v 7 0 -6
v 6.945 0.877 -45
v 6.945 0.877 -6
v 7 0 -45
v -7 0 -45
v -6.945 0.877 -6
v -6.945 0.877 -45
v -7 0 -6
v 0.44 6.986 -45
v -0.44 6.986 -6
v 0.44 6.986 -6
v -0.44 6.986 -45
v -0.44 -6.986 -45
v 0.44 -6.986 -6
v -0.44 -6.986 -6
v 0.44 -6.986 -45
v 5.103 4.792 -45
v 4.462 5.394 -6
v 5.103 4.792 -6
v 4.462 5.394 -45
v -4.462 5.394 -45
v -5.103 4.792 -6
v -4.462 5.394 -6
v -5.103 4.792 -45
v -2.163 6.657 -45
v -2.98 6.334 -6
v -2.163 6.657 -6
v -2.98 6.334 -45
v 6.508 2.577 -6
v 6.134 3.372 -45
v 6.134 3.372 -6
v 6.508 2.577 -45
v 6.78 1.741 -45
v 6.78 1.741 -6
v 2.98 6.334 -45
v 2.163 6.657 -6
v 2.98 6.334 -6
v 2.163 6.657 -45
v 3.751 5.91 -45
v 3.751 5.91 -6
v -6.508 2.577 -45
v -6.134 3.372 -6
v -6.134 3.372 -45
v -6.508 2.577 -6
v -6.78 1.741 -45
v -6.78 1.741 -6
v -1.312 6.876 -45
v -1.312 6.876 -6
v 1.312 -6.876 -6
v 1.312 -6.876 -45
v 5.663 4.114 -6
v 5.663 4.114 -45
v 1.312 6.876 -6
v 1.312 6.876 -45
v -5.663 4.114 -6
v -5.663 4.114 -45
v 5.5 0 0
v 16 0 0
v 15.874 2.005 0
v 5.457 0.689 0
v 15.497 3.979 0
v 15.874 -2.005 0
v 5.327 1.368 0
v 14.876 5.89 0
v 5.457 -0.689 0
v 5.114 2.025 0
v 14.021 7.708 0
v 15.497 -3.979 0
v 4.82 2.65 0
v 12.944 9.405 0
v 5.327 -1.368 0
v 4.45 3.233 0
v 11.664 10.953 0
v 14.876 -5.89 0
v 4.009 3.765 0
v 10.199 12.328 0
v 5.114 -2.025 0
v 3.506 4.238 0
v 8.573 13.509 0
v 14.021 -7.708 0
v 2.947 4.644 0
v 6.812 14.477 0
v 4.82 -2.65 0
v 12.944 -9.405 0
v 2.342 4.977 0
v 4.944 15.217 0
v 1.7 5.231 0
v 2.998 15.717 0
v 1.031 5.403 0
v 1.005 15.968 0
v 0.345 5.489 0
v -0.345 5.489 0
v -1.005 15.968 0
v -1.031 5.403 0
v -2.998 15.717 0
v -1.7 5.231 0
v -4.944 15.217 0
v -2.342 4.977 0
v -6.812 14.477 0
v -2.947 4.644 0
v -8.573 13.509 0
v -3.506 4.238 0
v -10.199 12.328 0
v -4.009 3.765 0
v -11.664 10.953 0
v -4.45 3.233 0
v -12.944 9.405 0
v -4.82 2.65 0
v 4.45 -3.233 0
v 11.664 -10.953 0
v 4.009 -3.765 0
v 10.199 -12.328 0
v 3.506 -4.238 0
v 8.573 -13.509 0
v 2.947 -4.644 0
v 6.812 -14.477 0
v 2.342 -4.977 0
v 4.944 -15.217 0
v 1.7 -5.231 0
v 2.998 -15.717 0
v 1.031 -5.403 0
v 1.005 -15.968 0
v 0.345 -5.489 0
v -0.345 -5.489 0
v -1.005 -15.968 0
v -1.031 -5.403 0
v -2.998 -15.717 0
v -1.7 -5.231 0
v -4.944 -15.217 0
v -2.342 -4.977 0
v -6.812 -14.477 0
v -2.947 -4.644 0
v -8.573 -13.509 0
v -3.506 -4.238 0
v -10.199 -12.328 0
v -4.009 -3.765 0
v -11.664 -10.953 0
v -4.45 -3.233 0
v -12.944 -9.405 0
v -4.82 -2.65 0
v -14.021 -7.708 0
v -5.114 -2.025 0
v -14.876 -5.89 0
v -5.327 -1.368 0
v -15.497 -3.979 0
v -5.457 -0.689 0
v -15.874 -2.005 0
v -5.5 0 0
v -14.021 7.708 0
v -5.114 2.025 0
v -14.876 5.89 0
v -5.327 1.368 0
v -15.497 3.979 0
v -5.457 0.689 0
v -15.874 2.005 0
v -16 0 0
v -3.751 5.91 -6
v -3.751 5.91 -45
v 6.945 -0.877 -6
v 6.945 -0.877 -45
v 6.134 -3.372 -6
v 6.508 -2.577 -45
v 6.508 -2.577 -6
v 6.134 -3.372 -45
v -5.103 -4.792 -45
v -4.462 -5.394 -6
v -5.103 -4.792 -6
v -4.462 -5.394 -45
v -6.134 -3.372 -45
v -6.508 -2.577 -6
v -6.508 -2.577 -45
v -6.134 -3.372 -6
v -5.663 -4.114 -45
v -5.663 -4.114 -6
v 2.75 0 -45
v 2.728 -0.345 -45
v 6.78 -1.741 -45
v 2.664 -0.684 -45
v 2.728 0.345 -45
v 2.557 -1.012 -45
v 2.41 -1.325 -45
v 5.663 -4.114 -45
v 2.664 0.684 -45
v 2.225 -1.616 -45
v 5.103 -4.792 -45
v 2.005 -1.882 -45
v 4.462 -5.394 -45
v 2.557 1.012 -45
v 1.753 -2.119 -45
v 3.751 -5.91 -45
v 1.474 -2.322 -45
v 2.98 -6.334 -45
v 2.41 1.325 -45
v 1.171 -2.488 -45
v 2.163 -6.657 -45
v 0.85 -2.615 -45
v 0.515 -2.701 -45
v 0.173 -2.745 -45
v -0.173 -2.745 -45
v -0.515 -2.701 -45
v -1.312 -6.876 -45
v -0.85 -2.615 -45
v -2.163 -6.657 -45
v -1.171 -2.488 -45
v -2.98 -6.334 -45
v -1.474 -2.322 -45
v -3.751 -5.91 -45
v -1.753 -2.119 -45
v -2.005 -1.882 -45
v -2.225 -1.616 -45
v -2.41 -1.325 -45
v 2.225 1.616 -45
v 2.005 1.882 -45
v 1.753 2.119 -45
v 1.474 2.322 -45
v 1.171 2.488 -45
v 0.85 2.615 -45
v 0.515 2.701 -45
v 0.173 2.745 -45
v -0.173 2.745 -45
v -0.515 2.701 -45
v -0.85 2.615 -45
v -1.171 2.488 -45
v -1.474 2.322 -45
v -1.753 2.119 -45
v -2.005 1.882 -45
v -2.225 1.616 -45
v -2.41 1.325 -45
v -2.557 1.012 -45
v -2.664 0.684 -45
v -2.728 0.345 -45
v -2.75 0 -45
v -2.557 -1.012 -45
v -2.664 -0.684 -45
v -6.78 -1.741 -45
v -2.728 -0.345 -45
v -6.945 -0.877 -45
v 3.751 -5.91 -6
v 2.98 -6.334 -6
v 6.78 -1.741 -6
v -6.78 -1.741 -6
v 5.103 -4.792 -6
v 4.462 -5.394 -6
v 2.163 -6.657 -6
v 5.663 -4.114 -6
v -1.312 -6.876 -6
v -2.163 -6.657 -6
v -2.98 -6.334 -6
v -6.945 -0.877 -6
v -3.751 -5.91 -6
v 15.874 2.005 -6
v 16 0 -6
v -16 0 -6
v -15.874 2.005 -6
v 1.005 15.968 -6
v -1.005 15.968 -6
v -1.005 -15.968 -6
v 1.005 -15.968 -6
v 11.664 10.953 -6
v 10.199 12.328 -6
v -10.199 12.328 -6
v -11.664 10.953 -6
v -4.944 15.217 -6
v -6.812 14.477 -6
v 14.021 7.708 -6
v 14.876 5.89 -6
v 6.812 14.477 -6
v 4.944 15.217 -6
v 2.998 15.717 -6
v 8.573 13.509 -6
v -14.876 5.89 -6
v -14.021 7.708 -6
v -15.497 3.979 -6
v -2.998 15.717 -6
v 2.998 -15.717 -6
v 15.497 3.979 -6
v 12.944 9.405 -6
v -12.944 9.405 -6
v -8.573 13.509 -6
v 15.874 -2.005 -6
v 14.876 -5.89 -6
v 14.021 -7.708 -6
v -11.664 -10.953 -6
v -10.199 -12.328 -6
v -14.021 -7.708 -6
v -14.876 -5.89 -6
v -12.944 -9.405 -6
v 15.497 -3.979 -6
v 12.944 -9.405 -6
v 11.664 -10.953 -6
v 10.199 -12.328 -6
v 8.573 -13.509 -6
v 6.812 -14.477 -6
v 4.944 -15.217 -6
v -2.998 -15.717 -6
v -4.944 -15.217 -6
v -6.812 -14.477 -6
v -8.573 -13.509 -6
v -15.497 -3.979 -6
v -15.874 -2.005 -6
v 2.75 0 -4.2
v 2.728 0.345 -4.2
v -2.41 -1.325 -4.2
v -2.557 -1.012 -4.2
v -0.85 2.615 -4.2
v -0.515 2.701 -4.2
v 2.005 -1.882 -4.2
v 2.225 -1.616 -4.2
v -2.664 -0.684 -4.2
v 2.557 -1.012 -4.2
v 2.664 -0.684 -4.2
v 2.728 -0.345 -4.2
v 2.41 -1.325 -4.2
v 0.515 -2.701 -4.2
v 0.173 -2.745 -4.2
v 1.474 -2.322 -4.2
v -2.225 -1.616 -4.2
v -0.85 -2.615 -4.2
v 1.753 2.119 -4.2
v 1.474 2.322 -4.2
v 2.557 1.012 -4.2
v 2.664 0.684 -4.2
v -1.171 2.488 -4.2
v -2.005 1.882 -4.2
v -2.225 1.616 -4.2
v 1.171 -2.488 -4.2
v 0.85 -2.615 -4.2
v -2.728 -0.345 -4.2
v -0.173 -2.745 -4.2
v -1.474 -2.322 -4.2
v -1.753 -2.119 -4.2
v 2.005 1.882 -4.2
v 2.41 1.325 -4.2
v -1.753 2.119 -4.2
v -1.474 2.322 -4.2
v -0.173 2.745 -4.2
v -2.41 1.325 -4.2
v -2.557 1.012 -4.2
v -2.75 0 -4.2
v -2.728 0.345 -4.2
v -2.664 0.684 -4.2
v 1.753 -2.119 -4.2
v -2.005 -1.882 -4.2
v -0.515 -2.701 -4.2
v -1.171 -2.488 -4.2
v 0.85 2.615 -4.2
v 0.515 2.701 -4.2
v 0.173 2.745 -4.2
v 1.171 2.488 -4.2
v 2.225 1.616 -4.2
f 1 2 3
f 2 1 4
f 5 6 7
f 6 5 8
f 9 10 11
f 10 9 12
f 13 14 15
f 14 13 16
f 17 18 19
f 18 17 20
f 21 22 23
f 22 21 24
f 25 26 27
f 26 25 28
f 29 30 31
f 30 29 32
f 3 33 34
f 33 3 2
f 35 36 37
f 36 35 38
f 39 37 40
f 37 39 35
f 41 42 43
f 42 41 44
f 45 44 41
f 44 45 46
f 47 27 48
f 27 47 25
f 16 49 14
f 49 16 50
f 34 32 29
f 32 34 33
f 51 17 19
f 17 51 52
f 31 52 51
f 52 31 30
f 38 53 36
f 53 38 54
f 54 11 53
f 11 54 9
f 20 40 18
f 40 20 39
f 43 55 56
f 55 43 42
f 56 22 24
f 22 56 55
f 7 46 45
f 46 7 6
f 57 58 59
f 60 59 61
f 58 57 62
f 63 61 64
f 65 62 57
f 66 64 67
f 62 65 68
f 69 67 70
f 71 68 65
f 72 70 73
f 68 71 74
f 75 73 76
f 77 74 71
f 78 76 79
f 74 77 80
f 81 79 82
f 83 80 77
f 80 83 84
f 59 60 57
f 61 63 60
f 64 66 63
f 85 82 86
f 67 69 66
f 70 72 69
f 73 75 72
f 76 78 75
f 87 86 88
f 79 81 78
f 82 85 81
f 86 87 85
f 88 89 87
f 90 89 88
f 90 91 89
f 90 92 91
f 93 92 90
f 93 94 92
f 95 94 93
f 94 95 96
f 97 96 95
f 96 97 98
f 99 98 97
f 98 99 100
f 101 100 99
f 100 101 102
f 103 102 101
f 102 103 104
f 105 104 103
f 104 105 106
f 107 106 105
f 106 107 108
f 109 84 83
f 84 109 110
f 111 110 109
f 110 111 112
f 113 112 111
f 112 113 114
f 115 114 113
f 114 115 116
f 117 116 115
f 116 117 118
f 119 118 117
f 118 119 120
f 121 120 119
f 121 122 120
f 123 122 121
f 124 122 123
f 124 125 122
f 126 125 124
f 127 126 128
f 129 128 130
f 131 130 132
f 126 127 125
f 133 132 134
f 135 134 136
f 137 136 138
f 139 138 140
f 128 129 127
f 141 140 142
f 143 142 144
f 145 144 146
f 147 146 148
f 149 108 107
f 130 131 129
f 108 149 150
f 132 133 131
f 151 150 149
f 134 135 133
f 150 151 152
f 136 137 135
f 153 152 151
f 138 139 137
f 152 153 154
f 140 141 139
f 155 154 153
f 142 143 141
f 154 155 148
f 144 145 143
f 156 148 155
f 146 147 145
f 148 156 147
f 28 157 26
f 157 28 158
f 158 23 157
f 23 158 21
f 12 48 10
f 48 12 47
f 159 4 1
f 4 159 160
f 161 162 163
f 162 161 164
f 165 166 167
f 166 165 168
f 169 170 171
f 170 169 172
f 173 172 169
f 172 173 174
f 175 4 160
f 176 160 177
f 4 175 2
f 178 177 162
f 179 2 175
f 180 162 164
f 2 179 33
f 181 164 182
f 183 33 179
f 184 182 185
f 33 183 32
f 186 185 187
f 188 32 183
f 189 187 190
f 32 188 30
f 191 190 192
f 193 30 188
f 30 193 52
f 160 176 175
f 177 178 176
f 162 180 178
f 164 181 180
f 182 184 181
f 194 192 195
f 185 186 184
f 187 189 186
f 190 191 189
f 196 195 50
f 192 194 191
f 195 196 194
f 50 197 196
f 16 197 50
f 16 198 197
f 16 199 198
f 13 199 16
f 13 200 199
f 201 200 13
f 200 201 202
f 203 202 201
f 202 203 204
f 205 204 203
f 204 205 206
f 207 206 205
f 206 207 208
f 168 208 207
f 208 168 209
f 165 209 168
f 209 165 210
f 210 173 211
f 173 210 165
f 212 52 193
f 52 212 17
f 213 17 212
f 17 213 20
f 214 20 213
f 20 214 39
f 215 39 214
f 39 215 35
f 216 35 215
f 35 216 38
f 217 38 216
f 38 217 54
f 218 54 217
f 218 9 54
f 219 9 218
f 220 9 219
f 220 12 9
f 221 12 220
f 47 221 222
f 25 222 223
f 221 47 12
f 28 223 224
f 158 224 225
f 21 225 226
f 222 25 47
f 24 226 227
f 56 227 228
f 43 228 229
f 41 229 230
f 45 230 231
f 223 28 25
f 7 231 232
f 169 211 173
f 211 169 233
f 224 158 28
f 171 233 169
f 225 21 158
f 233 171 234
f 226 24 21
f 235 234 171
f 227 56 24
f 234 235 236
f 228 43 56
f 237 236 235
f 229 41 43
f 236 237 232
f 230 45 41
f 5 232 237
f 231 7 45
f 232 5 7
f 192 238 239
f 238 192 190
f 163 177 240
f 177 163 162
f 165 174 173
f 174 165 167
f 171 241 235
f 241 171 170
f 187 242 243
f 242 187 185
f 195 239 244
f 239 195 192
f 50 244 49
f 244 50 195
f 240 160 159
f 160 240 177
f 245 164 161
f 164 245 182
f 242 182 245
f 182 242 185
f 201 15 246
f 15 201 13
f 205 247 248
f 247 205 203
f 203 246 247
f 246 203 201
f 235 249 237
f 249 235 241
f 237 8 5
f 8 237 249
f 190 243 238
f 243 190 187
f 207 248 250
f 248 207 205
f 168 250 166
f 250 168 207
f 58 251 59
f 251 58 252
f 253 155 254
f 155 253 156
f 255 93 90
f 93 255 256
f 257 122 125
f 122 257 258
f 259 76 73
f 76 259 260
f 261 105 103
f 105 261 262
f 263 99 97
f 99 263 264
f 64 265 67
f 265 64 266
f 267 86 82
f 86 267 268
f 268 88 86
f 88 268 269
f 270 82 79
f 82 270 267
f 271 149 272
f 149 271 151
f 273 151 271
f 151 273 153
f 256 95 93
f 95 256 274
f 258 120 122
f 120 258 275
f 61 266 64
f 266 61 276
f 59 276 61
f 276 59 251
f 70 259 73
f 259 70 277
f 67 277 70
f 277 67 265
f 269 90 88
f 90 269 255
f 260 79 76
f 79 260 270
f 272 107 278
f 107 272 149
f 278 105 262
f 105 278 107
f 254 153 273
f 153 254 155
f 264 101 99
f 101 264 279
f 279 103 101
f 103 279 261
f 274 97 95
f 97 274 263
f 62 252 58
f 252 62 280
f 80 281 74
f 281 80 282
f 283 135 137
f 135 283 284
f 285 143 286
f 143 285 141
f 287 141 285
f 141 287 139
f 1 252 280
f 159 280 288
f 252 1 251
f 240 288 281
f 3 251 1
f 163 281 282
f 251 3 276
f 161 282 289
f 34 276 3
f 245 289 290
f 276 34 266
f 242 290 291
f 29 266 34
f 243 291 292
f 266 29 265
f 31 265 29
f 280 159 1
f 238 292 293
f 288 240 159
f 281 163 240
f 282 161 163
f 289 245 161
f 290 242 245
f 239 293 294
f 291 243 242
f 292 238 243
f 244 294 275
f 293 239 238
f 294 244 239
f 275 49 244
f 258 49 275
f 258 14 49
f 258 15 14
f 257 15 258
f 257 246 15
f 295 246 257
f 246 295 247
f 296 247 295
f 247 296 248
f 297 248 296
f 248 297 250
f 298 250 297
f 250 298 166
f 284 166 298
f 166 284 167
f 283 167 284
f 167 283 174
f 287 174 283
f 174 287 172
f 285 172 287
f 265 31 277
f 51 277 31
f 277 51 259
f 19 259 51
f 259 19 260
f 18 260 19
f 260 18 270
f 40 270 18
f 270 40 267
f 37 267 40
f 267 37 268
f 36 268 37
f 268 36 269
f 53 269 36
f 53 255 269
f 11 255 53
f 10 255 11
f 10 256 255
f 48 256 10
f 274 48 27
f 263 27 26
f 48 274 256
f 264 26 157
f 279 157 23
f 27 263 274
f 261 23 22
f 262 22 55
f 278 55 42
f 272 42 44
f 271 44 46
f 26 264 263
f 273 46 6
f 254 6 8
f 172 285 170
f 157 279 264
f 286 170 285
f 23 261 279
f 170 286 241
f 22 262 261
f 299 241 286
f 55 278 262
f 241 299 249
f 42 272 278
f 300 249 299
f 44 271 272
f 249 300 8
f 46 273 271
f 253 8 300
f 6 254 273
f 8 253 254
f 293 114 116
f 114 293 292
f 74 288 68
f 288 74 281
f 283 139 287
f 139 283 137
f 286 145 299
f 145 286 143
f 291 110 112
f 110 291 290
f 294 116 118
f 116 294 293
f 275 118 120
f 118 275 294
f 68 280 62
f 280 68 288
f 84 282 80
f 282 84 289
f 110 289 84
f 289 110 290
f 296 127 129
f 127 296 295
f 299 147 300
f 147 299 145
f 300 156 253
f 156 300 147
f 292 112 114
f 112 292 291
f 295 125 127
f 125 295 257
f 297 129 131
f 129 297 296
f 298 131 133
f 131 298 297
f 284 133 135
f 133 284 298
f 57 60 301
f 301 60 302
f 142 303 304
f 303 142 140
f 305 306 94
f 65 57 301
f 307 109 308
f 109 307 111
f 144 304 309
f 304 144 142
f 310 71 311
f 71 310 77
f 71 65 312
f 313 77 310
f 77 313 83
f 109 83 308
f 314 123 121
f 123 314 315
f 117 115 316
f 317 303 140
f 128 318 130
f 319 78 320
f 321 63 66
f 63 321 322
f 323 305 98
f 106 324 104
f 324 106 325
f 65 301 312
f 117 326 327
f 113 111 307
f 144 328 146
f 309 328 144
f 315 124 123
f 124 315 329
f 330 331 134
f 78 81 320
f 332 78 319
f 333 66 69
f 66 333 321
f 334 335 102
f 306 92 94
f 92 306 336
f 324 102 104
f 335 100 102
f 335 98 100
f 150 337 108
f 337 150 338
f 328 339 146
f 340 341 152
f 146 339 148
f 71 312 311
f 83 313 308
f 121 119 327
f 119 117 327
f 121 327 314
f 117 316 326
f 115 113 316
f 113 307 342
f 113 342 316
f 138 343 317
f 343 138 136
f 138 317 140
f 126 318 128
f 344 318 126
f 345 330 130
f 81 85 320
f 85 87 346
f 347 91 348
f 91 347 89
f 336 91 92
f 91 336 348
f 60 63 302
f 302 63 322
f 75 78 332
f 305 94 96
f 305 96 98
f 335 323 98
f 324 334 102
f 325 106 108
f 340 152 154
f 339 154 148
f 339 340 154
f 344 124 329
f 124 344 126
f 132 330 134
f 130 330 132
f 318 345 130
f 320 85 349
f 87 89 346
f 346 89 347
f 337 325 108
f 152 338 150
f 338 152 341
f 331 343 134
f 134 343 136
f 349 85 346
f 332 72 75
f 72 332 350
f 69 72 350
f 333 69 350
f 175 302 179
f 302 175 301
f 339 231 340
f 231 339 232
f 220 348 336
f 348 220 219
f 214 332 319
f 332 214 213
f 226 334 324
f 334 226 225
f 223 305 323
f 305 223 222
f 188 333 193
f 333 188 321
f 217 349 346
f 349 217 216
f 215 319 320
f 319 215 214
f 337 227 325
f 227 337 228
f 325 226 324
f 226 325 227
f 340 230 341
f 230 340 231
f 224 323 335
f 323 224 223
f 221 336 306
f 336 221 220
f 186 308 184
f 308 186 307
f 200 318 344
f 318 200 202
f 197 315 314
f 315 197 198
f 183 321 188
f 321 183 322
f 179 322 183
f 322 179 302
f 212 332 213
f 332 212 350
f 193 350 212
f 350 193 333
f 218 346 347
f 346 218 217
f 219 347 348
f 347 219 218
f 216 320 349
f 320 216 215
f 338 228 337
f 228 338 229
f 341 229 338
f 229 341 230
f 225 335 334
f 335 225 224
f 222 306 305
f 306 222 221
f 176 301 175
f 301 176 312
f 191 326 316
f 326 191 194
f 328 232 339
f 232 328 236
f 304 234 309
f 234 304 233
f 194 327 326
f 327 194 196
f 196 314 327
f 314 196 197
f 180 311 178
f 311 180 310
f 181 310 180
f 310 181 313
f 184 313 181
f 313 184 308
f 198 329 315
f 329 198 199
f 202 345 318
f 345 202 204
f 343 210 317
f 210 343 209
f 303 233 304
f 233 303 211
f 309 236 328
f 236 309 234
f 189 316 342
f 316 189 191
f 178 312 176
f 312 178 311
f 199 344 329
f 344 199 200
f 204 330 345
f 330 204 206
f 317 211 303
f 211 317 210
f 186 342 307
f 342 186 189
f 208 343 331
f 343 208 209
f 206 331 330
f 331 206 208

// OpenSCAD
$fn = 50;


difference() {
	union() {
		translate(v = [0, 0, -45.0000000000]) {
			cylinder(h = 45, r = 7.0000000000);
		}
		translate(v = [0, 0, -6.0000000000]) {
			cylinder(h = 6, r = 16.0000000000);
		}
	}
	union() {
		translate(v = [0, 0, 0]) {
			rotate(a = [0, 0, 0]) {
				difference() {
					union() {
						#translate(v = [0, 0, -45.0000000000]) {
							cylinder(h = 45, r = 2.2500000000);
						}
						#translate(v = [0, 0, -4.2000000000]) {
							cylinder(h = 4.2000000000, r1 = 2.7500000000, r2 = 5.5000000000);
						}
						#translate(v = [0, 0, -45.0000000000]) {
							cylinder(h = 45, r = 2.7500000000);
						}
						#translate(v = [0, 0, -45.0000000000]) {
							cylinder(h = 45, r = 2.2500000000);
						}
					}
					union();
				}
			}
		}
	}
}
